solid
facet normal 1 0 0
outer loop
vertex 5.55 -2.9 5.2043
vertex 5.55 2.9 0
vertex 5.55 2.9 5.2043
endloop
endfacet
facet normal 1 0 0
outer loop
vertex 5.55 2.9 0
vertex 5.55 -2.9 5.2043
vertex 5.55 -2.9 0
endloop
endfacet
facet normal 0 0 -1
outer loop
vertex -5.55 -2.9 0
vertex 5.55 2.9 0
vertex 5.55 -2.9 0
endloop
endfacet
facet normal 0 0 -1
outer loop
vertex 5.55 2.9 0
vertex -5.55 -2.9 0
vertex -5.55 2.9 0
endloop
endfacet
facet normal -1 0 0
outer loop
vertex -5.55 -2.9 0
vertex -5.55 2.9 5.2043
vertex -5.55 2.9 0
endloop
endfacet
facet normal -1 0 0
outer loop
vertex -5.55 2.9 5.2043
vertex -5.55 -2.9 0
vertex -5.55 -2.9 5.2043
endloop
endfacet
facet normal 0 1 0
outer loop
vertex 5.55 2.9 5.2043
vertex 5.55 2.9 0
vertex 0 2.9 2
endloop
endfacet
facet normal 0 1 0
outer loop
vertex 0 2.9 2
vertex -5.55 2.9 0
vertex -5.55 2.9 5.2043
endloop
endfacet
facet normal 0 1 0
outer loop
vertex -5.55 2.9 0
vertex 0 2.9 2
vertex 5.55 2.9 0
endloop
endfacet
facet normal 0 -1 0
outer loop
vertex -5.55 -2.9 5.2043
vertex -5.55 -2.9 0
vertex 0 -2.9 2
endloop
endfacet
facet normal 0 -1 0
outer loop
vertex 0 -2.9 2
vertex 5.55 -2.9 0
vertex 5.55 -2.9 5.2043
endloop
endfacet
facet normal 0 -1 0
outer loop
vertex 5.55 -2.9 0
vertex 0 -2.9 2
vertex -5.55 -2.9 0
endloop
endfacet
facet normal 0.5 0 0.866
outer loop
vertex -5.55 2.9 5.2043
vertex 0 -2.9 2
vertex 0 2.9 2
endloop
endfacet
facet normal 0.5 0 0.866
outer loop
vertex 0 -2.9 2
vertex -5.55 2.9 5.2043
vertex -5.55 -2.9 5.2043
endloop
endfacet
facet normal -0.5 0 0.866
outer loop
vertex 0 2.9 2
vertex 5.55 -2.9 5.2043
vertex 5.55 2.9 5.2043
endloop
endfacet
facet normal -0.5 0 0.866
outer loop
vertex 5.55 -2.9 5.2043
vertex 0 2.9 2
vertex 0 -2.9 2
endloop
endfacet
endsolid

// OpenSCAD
include <BOSL/constants.scad>
use <BOSL/shapes.scad>
use <BOSL/transforms.scad>

module phone_clamp_nut_plug() {
    nut_plug_x = 11.1;
    nut_plug_y = 5.8;
    nut_depth = 6;
    nut_diameter = 13;
    nut_cutout_zpos = 2;

    difference() {
        cuboid([nut_plug_x, nut_plug_y, nut_depth], align=V_TOP);
        zmove((nut_diameter / 2) + nut_cutout_zpos) {
            yrot(30) {
                cyl(d=nut_diameter, h=nut_depth, orient=ORIENT_Y, $fn=6);
            }
        }

    }
}


phone_clamp_nut_plug();
